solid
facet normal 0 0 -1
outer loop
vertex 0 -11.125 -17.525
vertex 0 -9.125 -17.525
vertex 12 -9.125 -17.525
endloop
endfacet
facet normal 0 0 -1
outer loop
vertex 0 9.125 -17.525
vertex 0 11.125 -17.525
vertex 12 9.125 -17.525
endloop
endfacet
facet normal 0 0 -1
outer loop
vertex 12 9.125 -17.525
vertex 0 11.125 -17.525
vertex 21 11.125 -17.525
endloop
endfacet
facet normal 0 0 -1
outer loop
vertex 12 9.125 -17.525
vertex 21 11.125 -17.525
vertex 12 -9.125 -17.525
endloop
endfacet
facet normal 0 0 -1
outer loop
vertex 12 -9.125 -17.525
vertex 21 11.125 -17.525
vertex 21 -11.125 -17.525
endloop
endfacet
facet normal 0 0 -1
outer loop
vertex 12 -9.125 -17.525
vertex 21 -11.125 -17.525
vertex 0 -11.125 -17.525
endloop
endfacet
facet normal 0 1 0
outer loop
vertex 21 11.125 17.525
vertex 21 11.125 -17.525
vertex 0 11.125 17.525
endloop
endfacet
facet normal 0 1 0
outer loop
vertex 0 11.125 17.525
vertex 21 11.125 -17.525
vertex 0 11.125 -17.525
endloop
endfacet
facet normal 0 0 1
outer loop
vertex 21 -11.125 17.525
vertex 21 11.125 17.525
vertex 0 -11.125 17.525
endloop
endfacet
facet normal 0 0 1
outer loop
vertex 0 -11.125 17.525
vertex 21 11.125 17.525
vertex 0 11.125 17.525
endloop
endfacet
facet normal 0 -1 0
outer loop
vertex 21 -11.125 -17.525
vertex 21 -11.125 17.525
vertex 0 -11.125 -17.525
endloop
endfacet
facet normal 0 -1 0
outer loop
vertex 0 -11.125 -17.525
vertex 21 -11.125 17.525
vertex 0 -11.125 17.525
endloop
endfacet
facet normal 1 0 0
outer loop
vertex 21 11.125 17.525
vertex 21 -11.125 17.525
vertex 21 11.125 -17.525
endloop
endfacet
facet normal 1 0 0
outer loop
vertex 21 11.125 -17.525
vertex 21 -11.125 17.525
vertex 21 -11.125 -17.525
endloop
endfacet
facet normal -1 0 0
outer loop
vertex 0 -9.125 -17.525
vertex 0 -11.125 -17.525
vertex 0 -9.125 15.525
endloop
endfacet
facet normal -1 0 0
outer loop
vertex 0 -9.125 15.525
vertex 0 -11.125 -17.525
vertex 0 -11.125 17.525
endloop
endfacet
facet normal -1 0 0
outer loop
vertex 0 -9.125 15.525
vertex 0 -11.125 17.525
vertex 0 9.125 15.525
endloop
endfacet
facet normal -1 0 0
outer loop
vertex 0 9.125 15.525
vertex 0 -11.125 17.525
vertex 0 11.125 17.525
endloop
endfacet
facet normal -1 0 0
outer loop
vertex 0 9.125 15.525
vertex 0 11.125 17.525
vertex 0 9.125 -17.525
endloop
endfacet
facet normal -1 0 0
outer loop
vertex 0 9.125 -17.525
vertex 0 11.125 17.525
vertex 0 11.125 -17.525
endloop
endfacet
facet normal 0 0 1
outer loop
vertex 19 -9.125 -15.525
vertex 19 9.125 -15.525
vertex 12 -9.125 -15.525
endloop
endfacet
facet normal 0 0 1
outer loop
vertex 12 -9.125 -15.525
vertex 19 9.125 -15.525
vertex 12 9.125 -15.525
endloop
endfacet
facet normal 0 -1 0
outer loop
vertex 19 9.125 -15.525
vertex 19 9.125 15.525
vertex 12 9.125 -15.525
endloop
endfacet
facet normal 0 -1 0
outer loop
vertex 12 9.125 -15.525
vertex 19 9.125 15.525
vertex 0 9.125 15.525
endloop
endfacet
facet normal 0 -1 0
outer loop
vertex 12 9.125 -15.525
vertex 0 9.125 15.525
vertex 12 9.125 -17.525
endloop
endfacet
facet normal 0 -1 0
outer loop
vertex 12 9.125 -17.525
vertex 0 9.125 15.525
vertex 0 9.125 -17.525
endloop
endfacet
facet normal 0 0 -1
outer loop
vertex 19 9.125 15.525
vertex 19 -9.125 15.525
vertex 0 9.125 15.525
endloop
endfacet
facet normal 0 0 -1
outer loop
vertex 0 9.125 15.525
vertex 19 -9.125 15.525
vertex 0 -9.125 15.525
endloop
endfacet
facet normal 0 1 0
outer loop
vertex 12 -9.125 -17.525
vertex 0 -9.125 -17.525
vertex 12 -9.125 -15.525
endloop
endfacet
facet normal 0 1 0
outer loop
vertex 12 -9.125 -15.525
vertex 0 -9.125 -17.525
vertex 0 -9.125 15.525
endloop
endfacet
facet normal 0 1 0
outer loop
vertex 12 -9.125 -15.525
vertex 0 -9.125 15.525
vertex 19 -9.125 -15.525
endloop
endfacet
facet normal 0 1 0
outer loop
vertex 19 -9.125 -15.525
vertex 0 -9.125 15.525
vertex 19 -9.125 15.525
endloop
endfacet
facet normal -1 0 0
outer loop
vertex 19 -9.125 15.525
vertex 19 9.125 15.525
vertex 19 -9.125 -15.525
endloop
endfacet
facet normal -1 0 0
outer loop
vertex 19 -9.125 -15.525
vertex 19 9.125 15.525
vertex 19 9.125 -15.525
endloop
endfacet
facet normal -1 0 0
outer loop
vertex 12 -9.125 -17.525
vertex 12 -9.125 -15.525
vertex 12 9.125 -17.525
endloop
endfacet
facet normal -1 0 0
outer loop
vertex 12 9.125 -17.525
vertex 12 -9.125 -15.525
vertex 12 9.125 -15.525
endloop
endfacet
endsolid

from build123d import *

# Parameters (mm, degrees)
SKETCH4_W           = 31.05
SKETCH4_H           = 18.25
BOSS_EXTRUDE1_DEPTH = 19
SHELL1_T            = 2
SKETCH5_W           = 12
SKETCH5_H           = 18.25
CUT_EXTRUDE1_DEPTH  = 2


with BuildPart() as part:
    # Sketch4 → Boss-Extrude1 (new body)
    with BuildSketch(Plane(origin=(0, 0, 0), x_dir=(0, 0, -1), z_dir=(1, 0, 0))):
        Rectangle(SKETCH4_W, SKETCH4_H)
    extrude(amount=BOSS_EXTRUDE1_DEPTH)

    # Shell1
    shell1_openings = [part.faces().sort_by_distance(p)[0] for p in [
        (0, 0, 0),
    ]]
    offset(amount=SHELL1_T, openings=shell1_openings, kind=Kind.INTERSECTION)

    # Sketch5 → Cut-Extrude1 (cut)
    with BuildSketch(Plane(origin=(0, 0, -17.525), x_dir=(-1, 0, 0), z_dir=(0, 0, -1))):
        with Locations((-6, 0)):
            Rectangle(SKETCH5_W, SKETCH5_H)
    extrude(amount=-CUT_EXTRUDE1_DEPTH, mode=Mode.SUBTRACT)


solid = part.part
